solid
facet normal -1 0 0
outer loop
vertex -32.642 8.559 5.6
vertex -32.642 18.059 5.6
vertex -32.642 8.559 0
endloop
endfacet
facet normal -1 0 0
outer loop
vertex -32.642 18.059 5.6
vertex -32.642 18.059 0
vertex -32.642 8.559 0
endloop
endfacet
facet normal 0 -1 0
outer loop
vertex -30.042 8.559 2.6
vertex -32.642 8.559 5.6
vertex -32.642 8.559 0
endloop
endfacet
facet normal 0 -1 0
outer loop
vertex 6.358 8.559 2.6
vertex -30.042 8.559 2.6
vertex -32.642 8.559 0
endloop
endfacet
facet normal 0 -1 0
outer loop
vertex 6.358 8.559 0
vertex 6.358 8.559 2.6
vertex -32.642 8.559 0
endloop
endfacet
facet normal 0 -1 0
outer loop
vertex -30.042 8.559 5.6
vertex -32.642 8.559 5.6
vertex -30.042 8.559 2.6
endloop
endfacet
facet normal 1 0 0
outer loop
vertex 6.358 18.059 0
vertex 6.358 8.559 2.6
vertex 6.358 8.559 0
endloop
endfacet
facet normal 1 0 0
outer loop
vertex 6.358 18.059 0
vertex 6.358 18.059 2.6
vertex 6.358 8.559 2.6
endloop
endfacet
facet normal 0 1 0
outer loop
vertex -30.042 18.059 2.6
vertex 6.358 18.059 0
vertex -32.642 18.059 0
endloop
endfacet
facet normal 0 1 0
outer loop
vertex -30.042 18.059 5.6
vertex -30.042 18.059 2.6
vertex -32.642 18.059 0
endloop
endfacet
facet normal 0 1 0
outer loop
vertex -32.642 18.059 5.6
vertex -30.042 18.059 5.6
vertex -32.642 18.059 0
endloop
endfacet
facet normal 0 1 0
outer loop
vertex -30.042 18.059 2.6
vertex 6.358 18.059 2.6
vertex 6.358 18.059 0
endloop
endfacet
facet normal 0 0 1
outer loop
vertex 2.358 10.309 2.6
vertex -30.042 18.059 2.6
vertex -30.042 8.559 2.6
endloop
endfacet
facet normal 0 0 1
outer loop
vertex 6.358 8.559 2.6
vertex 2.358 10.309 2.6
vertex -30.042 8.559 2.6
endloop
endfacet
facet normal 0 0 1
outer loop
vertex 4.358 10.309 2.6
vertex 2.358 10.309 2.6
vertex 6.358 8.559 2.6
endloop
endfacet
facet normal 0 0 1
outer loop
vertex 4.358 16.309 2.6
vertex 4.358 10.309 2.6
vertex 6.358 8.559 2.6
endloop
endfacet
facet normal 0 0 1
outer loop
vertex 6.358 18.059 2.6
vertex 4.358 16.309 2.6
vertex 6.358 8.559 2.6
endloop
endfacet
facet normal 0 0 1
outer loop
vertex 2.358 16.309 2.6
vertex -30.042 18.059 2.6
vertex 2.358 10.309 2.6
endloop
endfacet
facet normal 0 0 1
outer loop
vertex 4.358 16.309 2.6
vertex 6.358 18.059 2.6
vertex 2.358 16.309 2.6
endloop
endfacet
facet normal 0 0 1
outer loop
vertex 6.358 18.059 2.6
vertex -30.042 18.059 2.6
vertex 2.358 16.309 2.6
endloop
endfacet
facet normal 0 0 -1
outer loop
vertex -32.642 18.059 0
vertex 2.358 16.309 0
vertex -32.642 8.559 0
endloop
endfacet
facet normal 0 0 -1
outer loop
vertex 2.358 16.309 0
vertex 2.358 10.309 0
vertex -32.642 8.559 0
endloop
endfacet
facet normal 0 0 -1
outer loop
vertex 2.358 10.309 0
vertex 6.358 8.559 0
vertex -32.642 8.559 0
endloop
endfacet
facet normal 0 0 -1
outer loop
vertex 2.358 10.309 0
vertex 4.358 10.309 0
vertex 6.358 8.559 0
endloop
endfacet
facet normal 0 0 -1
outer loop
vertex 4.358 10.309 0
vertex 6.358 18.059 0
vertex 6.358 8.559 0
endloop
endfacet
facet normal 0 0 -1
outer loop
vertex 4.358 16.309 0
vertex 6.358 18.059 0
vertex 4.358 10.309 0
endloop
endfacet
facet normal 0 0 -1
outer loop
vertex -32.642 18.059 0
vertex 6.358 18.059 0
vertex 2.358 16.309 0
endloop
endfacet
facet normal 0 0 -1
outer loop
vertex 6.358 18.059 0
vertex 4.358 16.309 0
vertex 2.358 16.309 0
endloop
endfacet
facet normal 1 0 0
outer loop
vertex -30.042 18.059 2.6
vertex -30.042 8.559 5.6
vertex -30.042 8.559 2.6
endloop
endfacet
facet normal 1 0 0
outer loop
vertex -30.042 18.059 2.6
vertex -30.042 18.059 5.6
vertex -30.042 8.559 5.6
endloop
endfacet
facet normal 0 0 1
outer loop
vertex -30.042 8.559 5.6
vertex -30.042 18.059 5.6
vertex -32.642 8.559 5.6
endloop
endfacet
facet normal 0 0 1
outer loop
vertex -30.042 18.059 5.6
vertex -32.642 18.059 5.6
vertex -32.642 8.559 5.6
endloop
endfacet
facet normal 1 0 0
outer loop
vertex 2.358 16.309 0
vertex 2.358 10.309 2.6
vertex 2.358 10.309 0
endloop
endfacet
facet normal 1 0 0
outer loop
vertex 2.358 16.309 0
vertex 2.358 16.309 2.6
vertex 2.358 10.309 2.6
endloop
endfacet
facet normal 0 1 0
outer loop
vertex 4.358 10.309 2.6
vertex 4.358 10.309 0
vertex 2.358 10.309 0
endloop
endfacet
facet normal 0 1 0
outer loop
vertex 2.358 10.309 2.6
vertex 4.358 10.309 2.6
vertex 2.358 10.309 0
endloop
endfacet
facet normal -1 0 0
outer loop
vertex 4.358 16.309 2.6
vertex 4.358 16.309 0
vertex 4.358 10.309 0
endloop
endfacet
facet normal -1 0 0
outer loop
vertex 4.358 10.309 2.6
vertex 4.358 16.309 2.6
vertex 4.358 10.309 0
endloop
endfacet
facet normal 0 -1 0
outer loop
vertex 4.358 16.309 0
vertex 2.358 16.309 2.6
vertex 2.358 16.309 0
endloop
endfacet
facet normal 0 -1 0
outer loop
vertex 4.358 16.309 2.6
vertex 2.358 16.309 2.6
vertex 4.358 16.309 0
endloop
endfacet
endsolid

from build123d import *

# Parameters (mm, degrees)
SKETCH1_W           = 39
SKETCH1_H           = 9.5
BOSS_EXTRUDE1_DEPTH = 2.6
SKETCH3_W           = 2.6
SKETCH3_H           = 9.5
BOSS_EXTRUDE2_DEPTH = 3
SKETCH4_W           = 2
SKETCH4_H           = 6
CUT_EXTRUDE1_DEPTH  = 4


with BuildPart() as part:
    # Sketch1 → Boss-Extrude1 (new body)
    with BuildSketch(Plane.XY):
        with Locations((-13.141843972, 13.308510638)):
            Rectangle(SKETCH1_W, SKETCH1_H)
    extrude(amount=BOSS_EXTRUDE1_DEPTH)

    # Sketch3 → Boss-Extrude2 (add)
    with BuildSketch(Plane.XY.offset(2.6)):
        with Locations((-31.341843972, 13.308510638)):
            Rectangle(SKETCH3_W, SKETCH3_H)
    extrude(amount=BOSS_EXTRUDE2_DEPTH)

    # Sketch4 → Cut-Extrude1 (cut)
    with BuildSketch(Plane(origin=(0, 0, 0), x_dir=(-1, 0, 0), z_dir=(0, 0, -1))):
        with Locations((-3.358156028, 13.308510638)):
            Rectangle(SKETCH4_W, SKETCH4_H)
    extrude(amount=-CUT_EXTRUDE1_DEPTH, mode=Mode.SUBTRACT)


solid = part.part
